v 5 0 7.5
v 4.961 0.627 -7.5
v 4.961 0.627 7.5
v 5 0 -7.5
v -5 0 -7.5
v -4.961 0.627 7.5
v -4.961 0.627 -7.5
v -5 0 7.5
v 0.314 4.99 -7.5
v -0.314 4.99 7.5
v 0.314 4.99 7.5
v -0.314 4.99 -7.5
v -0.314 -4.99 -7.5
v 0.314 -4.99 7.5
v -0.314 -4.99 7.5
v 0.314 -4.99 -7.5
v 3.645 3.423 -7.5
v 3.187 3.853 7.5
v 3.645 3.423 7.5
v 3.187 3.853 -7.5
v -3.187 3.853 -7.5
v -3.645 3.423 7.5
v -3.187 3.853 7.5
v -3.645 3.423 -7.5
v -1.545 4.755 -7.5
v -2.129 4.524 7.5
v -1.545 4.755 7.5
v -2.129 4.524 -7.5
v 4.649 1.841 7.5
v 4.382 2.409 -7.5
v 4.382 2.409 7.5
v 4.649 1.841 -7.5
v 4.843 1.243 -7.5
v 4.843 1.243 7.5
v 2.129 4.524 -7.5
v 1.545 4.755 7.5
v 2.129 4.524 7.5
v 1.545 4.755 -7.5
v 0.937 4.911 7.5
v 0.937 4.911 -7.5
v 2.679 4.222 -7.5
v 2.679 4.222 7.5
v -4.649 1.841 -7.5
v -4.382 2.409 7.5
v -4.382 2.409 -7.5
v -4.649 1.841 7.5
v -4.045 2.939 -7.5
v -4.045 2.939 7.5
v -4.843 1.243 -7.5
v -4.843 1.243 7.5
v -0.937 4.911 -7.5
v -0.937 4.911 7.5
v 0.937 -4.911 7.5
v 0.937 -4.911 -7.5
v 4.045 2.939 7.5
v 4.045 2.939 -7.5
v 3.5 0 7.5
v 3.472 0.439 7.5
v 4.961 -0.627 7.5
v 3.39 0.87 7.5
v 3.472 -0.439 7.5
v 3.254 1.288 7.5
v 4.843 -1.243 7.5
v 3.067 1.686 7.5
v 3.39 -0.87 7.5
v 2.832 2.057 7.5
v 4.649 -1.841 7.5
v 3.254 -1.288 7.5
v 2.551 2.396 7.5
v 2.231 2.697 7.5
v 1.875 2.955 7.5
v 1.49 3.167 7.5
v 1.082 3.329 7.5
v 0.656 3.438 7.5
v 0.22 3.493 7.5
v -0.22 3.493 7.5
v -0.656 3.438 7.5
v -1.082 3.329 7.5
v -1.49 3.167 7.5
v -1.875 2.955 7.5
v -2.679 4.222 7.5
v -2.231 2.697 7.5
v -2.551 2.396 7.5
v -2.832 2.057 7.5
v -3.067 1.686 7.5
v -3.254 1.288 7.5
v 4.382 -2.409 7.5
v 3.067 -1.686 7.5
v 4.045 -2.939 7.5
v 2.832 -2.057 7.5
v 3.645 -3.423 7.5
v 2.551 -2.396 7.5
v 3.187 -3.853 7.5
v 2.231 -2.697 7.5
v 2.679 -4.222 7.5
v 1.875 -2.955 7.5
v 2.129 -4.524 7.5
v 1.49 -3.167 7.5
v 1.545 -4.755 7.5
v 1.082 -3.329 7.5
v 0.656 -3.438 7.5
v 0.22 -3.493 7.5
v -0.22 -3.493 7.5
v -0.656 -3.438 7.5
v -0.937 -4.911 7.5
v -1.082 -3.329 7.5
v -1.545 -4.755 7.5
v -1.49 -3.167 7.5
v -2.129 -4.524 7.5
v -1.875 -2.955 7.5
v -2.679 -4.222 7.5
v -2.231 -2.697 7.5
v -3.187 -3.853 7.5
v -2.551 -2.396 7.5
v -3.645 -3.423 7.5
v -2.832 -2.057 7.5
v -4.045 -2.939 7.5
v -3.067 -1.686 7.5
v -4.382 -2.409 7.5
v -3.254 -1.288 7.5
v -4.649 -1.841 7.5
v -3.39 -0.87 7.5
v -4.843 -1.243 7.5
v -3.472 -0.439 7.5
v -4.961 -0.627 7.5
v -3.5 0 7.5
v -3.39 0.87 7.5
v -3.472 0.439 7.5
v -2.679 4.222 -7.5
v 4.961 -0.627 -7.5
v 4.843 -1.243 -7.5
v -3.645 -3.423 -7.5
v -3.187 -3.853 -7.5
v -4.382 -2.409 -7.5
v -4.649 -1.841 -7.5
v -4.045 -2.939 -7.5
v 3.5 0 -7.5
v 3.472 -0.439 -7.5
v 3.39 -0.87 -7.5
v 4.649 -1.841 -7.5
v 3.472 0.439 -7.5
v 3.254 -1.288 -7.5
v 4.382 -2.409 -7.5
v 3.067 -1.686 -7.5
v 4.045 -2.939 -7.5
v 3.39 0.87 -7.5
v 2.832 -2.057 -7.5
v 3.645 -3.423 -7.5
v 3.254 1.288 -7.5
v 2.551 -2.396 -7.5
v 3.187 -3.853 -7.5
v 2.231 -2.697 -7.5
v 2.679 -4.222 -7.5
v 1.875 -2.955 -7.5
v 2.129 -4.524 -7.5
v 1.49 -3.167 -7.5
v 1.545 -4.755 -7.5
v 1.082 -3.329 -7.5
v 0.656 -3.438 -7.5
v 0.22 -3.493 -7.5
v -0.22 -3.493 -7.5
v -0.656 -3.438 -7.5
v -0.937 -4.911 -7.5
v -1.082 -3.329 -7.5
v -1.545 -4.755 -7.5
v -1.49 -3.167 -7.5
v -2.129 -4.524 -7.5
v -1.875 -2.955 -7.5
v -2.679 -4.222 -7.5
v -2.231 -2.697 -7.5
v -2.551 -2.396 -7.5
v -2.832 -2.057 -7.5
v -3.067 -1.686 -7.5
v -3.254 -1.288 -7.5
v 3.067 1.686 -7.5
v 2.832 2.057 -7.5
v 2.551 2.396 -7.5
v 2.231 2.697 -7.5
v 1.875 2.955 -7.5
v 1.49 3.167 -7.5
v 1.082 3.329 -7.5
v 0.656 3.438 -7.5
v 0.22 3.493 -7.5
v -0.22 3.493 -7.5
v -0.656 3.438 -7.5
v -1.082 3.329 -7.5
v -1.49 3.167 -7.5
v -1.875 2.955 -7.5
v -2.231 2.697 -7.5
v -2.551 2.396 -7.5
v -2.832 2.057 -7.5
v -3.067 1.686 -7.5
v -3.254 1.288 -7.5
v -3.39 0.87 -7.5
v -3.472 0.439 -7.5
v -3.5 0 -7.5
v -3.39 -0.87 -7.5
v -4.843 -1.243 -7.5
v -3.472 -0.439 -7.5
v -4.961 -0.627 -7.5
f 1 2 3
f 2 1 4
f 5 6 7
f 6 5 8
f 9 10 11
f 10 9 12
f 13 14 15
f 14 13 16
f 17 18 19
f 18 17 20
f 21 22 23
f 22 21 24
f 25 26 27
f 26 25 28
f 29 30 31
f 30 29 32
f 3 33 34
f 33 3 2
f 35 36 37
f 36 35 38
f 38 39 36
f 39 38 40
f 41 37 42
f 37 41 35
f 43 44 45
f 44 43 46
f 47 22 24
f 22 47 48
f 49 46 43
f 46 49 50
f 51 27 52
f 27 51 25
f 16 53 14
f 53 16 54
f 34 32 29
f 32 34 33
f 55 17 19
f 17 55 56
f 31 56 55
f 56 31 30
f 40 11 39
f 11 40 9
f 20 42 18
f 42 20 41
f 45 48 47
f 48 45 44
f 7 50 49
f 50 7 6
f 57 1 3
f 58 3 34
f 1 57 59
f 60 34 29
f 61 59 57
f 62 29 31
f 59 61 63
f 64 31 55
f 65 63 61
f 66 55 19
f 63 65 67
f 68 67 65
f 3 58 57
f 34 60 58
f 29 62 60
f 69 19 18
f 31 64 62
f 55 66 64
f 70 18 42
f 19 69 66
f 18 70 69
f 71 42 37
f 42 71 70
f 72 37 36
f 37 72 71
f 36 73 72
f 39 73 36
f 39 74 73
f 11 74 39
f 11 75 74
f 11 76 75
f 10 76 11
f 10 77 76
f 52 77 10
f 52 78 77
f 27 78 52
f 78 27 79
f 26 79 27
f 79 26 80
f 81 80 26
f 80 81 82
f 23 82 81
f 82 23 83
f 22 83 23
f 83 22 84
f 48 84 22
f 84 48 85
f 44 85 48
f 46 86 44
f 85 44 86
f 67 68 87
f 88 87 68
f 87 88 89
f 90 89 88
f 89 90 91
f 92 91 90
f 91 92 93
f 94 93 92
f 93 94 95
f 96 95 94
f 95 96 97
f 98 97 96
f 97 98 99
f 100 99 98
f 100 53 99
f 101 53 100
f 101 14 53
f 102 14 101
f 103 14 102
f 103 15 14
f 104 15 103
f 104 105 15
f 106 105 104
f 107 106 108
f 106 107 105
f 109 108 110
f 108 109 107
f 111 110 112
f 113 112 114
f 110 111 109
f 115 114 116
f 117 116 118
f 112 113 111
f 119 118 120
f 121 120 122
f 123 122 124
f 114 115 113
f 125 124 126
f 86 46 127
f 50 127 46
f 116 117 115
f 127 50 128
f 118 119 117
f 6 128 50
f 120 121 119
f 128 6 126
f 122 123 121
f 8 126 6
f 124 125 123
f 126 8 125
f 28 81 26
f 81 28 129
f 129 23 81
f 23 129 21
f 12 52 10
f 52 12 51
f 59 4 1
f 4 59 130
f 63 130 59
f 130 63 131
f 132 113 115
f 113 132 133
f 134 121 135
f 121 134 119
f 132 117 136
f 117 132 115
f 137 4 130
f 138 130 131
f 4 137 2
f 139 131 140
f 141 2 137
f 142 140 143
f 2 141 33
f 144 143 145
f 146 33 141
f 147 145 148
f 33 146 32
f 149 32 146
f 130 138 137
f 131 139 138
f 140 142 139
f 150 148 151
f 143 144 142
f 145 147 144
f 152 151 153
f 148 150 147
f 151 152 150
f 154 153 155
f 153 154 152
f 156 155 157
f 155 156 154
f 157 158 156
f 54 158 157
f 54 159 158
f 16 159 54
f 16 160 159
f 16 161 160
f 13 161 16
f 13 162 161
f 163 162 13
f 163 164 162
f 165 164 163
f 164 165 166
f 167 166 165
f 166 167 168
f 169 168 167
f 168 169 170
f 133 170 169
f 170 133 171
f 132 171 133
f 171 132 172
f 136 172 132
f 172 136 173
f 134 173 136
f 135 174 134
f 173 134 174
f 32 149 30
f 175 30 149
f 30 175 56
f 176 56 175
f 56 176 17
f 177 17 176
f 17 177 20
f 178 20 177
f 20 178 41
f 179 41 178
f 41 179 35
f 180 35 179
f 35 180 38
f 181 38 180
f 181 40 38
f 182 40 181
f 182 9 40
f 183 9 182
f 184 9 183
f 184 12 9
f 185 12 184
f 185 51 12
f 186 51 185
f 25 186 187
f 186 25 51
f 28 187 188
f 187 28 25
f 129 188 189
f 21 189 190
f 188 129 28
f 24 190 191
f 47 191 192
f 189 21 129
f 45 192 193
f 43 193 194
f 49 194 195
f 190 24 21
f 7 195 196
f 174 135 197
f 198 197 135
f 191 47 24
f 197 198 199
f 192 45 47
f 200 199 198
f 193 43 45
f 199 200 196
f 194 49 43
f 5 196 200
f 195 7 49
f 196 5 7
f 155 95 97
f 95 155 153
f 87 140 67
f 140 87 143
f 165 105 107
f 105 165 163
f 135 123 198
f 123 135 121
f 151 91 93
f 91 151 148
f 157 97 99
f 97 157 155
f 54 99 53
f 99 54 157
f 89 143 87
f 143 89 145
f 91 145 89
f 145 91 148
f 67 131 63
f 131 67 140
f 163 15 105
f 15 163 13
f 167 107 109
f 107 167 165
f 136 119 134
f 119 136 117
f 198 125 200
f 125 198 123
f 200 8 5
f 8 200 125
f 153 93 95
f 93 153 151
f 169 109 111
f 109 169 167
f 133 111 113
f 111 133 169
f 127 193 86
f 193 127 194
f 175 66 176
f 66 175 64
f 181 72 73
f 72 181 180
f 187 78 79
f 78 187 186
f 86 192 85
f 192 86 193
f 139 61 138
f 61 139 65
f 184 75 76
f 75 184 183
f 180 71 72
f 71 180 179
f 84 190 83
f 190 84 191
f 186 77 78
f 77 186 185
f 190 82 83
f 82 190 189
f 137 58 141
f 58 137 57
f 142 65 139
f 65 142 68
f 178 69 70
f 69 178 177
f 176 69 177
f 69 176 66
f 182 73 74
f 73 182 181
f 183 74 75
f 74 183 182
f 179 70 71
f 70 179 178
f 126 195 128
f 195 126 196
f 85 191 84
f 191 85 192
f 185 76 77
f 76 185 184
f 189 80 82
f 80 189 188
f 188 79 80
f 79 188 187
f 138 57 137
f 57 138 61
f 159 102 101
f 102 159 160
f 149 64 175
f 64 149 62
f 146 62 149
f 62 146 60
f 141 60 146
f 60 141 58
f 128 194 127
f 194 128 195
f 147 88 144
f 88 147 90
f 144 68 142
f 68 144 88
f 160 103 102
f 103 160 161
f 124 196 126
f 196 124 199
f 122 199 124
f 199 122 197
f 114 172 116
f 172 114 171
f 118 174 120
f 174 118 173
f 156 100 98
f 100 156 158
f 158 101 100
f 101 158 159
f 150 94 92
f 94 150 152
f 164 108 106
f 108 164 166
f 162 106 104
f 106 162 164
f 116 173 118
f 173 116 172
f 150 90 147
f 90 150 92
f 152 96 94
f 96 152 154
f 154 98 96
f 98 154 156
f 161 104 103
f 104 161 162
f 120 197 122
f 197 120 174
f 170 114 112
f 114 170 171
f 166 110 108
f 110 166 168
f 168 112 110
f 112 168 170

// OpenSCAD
$fn = 50;


difference() {
	union() {
		translate(v = [0, 0, -7.5000000000]) {
			cylinder(h = 15, r = 5.0000000000);
		}
	}
	union() {
		translate(v = [0, 0, -100.0000000000]) {
			cylinder(h = 200, r = 3.5000000000);
		}
	}
}
